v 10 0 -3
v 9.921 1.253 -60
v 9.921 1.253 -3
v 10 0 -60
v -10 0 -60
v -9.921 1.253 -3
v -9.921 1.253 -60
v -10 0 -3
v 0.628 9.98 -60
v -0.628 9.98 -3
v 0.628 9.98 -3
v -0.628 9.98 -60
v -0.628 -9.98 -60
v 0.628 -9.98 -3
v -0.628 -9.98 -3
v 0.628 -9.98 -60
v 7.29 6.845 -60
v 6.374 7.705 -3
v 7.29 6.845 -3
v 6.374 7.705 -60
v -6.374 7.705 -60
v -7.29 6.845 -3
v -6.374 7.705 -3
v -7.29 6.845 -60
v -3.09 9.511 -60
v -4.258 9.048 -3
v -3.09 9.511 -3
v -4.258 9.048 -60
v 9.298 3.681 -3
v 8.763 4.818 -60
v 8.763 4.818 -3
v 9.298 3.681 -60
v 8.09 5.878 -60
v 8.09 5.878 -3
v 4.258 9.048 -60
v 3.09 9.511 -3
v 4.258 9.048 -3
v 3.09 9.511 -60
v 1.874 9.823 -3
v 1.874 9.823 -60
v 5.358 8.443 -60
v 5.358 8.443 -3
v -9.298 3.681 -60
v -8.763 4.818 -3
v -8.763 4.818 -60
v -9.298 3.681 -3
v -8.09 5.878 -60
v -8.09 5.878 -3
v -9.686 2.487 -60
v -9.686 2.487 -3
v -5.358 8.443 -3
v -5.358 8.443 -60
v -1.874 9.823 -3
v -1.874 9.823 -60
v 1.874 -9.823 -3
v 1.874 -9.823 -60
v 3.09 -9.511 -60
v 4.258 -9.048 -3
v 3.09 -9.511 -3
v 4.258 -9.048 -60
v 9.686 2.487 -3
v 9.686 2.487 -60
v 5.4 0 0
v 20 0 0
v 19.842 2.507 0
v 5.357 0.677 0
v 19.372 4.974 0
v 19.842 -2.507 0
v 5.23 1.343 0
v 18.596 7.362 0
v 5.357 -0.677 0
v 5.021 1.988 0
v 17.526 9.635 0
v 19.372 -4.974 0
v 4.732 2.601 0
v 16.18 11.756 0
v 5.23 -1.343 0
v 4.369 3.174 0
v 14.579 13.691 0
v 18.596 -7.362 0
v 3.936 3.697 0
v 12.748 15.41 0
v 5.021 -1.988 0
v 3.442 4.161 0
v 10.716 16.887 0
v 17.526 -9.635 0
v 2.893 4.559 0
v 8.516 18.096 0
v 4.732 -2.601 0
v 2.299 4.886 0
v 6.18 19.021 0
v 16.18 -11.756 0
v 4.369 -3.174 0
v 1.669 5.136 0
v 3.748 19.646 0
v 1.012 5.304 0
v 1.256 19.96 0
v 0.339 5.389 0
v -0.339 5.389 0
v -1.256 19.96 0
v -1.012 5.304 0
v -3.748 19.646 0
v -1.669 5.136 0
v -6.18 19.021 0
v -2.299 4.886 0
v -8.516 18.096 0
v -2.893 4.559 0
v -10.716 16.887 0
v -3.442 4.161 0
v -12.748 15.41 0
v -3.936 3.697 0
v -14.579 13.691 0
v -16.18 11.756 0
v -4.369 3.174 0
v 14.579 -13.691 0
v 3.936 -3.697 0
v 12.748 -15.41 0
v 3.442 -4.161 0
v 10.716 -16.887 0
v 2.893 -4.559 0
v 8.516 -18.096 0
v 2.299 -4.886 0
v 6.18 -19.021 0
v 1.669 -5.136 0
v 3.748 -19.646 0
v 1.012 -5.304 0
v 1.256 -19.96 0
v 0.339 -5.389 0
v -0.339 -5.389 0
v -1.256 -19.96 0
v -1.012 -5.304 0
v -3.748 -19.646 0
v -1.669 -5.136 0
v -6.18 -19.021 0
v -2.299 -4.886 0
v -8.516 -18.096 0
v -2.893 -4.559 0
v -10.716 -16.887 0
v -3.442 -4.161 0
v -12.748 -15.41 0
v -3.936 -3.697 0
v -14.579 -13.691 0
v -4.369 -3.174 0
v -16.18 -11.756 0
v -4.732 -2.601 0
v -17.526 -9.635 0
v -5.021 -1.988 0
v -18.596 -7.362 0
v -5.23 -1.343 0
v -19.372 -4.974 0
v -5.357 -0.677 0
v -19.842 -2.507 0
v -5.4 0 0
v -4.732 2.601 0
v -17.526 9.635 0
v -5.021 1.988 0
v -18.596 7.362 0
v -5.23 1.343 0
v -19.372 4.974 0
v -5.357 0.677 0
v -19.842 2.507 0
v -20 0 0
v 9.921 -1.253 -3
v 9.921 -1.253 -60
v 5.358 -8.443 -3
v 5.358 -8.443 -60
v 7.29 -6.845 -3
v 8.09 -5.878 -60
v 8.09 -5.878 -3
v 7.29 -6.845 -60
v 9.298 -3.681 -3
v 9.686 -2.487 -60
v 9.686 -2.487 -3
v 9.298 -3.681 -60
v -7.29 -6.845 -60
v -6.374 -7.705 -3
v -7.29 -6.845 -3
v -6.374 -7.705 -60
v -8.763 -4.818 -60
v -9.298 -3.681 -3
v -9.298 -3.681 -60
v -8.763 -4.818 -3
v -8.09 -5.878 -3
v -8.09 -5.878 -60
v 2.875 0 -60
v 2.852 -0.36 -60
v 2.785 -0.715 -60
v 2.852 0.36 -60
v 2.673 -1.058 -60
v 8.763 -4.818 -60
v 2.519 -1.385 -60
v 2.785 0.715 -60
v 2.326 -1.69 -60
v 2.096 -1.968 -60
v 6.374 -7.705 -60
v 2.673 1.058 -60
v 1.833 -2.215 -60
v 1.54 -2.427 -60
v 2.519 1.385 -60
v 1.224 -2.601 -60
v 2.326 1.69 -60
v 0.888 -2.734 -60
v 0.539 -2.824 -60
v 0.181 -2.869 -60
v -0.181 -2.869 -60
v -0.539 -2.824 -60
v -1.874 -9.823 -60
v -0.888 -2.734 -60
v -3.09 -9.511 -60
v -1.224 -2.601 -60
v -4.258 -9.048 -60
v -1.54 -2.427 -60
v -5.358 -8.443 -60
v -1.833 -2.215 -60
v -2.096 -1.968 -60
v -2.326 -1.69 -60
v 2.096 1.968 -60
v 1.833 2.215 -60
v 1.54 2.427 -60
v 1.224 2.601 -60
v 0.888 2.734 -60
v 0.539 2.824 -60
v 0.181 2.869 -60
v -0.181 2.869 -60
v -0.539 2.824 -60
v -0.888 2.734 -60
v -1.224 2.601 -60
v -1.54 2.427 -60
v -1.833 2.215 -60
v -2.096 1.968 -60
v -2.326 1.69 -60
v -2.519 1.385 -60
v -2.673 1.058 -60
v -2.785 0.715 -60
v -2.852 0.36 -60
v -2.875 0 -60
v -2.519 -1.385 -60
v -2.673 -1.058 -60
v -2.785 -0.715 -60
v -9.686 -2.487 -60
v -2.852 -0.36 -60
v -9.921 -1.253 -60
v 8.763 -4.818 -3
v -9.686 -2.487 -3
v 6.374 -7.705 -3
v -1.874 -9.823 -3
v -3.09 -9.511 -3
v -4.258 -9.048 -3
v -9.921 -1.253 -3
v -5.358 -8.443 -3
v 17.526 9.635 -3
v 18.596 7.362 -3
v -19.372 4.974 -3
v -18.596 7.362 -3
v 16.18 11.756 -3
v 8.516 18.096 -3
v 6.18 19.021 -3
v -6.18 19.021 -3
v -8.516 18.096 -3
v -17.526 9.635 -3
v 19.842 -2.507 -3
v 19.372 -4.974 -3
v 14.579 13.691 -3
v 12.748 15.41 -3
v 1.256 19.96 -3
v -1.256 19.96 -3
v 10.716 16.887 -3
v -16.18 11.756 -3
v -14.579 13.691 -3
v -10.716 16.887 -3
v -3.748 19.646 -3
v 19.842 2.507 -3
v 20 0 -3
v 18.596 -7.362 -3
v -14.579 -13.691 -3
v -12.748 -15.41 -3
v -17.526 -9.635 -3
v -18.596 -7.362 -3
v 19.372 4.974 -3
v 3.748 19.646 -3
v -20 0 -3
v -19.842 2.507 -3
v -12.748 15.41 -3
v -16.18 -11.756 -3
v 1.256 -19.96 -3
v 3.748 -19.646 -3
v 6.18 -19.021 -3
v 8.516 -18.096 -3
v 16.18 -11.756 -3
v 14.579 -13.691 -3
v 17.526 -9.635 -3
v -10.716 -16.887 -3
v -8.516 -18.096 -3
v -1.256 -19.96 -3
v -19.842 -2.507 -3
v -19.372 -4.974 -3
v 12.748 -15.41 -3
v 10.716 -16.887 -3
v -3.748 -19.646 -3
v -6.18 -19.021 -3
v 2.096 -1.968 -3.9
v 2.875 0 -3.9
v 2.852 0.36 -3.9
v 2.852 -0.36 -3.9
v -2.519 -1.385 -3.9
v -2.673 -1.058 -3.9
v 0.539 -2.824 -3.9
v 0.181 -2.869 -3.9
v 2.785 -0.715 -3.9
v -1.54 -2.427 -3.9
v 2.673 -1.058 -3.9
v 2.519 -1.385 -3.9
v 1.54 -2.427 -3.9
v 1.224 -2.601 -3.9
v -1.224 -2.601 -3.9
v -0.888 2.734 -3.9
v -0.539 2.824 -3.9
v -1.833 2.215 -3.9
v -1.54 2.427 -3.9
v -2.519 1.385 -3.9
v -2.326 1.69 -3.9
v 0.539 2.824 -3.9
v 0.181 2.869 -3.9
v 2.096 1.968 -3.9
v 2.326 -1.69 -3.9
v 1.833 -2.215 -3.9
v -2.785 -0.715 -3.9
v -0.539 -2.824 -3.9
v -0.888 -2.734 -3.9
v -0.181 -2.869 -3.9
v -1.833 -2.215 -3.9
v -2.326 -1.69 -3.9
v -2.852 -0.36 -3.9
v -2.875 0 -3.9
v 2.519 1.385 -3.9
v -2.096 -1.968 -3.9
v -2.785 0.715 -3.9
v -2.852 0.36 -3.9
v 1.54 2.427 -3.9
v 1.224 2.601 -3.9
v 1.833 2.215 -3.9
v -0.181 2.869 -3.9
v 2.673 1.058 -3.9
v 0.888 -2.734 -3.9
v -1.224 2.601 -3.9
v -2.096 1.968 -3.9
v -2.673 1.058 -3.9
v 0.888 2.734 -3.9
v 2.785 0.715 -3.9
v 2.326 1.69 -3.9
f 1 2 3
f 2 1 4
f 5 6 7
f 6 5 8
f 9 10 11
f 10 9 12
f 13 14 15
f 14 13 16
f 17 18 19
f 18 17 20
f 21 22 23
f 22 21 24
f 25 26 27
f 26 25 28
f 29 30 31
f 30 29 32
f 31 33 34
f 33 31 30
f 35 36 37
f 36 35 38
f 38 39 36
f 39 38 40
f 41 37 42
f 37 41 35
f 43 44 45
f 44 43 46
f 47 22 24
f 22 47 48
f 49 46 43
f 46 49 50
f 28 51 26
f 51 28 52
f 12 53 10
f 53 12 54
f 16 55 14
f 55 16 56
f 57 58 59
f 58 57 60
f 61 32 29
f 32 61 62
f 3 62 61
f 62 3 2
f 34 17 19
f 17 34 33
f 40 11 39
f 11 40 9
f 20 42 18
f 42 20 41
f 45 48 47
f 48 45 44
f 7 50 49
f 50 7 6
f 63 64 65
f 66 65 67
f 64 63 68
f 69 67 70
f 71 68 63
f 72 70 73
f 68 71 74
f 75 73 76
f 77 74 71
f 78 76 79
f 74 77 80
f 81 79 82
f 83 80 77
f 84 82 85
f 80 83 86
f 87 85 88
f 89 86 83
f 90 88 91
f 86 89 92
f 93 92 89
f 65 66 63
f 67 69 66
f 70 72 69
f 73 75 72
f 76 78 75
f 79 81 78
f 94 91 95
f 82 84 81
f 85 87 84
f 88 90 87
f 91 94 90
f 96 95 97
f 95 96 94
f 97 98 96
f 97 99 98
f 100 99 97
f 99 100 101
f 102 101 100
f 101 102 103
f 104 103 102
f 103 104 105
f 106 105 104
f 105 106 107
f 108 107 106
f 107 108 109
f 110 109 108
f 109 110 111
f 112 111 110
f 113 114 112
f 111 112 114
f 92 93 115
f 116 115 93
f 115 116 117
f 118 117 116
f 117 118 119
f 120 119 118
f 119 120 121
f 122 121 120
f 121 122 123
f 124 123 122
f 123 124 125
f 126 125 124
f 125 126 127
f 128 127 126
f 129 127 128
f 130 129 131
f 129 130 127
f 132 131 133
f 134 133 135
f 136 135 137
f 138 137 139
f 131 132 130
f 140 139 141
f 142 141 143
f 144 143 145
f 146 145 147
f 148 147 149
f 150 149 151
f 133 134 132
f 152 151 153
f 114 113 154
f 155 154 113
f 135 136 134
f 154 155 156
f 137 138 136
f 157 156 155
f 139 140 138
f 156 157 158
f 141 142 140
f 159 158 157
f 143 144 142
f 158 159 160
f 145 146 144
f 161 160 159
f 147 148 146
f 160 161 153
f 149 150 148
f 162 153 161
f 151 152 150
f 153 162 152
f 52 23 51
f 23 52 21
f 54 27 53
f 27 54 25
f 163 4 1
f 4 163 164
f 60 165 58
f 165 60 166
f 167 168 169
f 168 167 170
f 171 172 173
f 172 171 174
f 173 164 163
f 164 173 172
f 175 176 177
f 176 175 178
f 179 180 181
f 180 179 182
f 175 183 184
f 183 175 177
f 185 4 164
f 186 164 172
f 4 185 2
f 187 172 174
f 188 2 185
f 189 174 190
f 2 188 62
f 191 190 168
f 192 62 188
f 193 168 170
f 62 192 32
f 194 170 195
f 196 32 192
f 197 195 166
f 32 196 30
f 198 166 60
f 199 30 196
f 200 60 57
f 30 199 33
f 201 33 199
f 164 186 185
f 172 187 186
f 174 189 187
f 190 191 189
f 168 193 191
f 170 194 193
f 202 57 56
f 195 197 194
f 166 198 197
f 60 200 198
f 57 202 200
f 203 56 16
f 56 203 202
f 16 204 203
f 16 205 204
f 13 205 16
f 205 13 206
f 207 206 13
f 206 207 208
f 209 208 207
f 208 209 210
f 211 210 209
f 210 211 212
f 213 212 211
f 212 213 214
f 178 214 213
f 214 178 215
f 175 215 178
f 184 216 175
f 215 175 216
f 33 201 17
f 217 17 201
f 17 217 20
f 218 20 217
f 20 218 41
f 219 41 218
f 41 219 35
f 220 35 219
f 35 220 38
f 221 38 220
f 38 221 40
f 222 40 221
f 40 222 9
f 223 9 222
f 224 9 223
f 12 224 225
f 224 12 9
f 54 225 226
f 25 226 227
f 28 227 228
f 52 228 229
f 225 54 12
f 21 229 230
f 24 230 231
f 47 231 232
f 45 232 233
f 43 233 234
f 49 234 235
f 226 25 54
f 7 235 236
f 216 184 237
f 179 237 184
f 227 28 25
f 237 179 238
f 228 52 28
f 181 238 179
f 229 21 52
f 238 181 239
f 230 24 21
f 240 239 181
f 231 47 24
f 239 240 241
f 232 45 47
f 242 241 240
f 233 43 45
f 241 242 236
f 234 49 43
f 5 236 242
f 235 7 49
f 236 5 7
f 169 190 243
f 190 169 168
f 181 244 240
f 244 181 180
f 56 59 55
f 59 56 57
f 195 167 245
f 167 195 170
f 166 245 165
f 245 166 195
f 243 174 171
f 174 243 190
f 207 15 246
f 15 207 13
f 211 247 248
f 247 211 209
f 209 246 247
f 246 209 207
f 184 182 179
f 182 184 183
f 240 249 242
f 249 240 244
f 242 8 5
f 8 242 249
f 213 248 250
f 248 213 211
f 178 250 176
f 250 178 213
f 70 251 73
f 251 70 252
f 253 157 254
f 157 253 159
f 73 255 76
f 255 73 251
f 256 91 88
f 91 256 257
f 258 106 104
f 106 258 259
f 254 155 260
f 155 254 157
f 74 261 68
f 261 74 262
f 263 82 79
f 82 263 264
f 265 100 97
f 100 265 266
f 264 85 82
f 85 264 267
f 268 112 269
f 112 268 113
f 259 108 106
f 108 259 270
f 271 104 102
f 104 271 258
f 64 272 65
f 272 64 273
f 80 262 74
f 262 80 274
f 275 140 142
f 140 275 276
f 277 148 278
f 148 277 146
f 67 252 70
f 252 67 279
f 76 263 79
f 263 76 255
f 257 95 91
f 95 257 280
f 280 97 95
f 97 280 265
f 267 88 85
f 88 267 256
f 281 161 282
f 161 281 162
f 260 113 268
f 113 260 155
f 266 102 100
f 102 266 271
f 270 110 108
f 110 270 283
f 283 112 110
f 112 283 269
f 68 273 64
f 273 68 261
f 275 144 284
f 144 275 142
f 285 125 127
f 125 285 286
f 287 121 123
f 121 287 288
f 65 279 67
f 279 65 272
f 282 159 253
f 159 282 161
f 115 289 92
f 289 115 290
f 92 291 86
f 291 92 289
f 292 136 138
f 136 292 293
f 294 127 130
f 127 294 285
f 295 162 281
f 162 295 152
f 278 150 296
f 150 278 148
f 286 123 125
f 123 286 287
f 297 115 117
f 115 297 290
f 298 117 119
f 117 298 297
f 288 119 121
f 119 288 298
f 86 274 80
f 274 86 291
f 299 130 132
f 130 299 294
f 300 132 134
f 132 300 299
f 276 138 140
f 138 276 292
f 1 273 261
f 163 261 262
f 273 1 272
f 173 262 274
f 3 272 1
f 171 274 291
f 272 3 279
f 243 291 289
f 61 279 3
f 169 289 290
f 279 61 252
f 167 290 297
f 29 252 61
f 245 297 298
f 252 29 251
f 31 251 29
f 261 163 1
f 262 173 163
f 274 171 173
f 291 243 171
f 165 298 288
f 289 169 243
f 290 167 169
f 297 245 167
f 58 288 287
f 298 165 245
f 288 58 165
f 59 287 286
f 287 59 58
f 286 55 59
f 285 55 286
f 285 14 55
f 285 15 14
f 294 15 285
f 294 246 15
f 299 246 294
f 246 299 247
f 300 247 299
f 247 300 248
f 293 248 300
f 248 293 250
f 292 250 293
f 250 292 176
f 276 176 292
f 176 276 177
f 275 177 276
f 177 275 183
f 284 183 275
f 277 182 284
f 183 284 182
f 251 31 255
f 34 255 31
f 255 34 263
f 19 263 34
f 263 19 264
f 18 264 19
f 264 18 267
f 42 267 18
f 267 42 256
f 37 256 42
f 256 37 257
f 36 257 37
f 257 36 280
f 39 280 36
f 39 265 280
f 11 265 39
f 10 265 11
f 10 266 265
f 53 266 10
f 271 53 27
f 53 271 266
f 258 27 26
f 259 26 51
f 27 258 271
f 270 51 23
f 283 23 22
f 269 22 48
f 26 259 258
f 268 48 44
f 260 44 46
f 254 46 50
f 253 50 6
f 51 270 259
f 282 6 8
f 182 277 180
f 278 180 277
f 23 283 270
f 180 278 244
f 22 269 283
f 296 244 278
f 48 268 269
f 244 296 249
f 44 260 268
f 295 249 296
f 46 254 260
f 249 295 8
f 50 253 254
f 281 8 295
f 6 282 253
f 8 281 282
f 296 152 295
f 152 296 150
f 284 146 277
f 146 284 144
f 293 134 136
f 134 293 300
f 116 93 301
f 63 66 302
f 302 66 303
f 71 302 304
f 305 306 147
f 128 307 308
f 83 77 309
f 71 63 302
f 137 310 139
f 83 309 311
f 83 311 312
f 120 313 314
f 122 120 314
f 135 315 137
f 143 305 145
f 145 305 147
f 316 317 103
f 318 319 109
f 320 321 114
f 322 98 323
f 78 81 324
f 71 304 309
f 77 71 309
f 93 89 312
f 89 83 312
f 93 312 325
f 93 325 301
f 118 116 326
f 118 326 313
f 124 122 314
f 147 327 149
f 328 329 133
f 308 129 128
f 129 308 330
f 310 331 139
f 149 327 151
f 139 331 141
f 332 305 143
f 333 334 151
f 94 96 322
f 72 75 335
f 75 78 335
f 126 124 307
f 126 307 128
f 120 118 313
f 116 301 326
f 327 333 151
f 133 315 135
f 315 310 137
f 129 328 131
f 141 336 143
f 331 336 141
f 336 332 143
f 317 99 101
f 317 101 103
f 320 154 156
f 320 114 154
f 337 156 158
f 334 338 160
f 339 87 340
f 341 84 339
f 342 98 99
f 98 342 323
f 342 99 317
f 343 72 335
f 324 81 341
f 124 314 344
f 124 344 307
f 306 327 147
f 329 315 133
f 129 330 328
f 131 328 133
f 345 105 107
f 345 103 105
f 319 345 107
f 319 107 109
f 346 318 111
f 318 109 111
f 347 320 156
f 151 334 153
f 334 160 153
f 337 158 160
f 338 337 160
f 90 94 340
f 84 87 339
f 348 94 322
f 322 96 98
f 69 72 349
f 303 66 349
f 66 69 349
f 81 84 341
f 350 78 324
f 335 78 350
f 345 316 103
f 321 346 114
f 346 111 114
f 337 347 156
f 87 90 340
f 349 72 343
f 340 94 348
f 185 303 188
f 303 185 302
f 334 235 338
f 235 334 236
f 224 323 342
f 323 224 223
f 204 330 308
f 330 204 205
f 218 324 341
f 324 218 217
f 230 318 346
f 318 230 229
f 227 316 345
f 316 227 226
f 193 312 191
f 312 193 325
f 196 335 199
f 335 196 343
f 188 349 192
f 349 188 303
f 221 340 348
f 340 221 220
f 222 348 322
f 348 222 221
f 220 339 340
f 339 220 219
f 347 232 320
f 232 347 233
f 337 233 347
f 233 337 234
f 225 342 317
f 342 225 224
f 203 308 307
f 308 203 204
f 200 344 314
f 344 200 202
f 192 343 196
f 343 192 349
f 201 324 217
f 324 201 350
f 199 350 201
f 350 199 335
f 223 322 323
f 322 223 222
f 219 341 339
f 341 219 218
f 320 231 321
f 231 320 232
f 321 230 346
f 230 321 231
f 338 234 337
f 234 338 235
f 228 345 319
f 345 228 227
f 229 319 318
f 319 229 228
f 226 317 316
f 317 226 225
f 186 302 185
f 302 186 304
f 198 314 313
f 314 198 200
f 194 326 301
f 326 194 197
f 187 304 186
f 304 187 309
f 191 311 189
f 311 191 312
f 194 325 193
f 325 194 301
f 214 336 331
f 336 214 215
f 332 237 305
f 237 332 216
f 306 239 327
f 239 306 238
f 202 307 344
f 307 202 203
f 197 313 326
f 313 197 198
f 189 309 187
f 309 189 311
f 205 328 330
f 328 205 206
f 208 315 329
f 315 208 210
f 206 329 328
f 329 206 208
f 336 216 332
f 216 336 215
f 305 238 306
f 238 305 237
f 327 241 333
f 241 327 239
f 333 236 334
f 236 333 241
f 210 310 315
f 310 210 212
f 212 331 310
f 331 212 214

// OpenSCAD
$fn = 50;


difference() {
	union() {
		translate(v = [0, 0, -60.0000000000]) {
			cylinder(h = 60, r = 10.0000000000);
		}
		translate(v = [0, 0, -3.0000000000]) {
			cylinder(h = 3, r = 20.0000000000);
		}
	}
	union() {
		translate(v = [0, 0, 0]) {
			rotate(a = [0, 0, 0]) {
				difference() {
					union() {
						#translate(v = [0, 0, -60.0000000000]) {
							cylinder(h = 60, r = 2.6000000000);
						}
						#translate(v = [0, 0, -3.9000000000]) {
							cylinder(h = 3.9000000000, r = 10.0000000000, r1 = 2.8750000000, r2 = 5.4000000000);
						}
						#translate(v = [0, 0, -60.0000000000]) {
							cylinder(h = 60, r = 2.8750000000);
						}
						#translate(v = [0, 0, -60.0000000000]) {
							cylinder(h = 60, r = 2.6000000000);
						}
					}
					union();
				}
			}
		}
	}
}
